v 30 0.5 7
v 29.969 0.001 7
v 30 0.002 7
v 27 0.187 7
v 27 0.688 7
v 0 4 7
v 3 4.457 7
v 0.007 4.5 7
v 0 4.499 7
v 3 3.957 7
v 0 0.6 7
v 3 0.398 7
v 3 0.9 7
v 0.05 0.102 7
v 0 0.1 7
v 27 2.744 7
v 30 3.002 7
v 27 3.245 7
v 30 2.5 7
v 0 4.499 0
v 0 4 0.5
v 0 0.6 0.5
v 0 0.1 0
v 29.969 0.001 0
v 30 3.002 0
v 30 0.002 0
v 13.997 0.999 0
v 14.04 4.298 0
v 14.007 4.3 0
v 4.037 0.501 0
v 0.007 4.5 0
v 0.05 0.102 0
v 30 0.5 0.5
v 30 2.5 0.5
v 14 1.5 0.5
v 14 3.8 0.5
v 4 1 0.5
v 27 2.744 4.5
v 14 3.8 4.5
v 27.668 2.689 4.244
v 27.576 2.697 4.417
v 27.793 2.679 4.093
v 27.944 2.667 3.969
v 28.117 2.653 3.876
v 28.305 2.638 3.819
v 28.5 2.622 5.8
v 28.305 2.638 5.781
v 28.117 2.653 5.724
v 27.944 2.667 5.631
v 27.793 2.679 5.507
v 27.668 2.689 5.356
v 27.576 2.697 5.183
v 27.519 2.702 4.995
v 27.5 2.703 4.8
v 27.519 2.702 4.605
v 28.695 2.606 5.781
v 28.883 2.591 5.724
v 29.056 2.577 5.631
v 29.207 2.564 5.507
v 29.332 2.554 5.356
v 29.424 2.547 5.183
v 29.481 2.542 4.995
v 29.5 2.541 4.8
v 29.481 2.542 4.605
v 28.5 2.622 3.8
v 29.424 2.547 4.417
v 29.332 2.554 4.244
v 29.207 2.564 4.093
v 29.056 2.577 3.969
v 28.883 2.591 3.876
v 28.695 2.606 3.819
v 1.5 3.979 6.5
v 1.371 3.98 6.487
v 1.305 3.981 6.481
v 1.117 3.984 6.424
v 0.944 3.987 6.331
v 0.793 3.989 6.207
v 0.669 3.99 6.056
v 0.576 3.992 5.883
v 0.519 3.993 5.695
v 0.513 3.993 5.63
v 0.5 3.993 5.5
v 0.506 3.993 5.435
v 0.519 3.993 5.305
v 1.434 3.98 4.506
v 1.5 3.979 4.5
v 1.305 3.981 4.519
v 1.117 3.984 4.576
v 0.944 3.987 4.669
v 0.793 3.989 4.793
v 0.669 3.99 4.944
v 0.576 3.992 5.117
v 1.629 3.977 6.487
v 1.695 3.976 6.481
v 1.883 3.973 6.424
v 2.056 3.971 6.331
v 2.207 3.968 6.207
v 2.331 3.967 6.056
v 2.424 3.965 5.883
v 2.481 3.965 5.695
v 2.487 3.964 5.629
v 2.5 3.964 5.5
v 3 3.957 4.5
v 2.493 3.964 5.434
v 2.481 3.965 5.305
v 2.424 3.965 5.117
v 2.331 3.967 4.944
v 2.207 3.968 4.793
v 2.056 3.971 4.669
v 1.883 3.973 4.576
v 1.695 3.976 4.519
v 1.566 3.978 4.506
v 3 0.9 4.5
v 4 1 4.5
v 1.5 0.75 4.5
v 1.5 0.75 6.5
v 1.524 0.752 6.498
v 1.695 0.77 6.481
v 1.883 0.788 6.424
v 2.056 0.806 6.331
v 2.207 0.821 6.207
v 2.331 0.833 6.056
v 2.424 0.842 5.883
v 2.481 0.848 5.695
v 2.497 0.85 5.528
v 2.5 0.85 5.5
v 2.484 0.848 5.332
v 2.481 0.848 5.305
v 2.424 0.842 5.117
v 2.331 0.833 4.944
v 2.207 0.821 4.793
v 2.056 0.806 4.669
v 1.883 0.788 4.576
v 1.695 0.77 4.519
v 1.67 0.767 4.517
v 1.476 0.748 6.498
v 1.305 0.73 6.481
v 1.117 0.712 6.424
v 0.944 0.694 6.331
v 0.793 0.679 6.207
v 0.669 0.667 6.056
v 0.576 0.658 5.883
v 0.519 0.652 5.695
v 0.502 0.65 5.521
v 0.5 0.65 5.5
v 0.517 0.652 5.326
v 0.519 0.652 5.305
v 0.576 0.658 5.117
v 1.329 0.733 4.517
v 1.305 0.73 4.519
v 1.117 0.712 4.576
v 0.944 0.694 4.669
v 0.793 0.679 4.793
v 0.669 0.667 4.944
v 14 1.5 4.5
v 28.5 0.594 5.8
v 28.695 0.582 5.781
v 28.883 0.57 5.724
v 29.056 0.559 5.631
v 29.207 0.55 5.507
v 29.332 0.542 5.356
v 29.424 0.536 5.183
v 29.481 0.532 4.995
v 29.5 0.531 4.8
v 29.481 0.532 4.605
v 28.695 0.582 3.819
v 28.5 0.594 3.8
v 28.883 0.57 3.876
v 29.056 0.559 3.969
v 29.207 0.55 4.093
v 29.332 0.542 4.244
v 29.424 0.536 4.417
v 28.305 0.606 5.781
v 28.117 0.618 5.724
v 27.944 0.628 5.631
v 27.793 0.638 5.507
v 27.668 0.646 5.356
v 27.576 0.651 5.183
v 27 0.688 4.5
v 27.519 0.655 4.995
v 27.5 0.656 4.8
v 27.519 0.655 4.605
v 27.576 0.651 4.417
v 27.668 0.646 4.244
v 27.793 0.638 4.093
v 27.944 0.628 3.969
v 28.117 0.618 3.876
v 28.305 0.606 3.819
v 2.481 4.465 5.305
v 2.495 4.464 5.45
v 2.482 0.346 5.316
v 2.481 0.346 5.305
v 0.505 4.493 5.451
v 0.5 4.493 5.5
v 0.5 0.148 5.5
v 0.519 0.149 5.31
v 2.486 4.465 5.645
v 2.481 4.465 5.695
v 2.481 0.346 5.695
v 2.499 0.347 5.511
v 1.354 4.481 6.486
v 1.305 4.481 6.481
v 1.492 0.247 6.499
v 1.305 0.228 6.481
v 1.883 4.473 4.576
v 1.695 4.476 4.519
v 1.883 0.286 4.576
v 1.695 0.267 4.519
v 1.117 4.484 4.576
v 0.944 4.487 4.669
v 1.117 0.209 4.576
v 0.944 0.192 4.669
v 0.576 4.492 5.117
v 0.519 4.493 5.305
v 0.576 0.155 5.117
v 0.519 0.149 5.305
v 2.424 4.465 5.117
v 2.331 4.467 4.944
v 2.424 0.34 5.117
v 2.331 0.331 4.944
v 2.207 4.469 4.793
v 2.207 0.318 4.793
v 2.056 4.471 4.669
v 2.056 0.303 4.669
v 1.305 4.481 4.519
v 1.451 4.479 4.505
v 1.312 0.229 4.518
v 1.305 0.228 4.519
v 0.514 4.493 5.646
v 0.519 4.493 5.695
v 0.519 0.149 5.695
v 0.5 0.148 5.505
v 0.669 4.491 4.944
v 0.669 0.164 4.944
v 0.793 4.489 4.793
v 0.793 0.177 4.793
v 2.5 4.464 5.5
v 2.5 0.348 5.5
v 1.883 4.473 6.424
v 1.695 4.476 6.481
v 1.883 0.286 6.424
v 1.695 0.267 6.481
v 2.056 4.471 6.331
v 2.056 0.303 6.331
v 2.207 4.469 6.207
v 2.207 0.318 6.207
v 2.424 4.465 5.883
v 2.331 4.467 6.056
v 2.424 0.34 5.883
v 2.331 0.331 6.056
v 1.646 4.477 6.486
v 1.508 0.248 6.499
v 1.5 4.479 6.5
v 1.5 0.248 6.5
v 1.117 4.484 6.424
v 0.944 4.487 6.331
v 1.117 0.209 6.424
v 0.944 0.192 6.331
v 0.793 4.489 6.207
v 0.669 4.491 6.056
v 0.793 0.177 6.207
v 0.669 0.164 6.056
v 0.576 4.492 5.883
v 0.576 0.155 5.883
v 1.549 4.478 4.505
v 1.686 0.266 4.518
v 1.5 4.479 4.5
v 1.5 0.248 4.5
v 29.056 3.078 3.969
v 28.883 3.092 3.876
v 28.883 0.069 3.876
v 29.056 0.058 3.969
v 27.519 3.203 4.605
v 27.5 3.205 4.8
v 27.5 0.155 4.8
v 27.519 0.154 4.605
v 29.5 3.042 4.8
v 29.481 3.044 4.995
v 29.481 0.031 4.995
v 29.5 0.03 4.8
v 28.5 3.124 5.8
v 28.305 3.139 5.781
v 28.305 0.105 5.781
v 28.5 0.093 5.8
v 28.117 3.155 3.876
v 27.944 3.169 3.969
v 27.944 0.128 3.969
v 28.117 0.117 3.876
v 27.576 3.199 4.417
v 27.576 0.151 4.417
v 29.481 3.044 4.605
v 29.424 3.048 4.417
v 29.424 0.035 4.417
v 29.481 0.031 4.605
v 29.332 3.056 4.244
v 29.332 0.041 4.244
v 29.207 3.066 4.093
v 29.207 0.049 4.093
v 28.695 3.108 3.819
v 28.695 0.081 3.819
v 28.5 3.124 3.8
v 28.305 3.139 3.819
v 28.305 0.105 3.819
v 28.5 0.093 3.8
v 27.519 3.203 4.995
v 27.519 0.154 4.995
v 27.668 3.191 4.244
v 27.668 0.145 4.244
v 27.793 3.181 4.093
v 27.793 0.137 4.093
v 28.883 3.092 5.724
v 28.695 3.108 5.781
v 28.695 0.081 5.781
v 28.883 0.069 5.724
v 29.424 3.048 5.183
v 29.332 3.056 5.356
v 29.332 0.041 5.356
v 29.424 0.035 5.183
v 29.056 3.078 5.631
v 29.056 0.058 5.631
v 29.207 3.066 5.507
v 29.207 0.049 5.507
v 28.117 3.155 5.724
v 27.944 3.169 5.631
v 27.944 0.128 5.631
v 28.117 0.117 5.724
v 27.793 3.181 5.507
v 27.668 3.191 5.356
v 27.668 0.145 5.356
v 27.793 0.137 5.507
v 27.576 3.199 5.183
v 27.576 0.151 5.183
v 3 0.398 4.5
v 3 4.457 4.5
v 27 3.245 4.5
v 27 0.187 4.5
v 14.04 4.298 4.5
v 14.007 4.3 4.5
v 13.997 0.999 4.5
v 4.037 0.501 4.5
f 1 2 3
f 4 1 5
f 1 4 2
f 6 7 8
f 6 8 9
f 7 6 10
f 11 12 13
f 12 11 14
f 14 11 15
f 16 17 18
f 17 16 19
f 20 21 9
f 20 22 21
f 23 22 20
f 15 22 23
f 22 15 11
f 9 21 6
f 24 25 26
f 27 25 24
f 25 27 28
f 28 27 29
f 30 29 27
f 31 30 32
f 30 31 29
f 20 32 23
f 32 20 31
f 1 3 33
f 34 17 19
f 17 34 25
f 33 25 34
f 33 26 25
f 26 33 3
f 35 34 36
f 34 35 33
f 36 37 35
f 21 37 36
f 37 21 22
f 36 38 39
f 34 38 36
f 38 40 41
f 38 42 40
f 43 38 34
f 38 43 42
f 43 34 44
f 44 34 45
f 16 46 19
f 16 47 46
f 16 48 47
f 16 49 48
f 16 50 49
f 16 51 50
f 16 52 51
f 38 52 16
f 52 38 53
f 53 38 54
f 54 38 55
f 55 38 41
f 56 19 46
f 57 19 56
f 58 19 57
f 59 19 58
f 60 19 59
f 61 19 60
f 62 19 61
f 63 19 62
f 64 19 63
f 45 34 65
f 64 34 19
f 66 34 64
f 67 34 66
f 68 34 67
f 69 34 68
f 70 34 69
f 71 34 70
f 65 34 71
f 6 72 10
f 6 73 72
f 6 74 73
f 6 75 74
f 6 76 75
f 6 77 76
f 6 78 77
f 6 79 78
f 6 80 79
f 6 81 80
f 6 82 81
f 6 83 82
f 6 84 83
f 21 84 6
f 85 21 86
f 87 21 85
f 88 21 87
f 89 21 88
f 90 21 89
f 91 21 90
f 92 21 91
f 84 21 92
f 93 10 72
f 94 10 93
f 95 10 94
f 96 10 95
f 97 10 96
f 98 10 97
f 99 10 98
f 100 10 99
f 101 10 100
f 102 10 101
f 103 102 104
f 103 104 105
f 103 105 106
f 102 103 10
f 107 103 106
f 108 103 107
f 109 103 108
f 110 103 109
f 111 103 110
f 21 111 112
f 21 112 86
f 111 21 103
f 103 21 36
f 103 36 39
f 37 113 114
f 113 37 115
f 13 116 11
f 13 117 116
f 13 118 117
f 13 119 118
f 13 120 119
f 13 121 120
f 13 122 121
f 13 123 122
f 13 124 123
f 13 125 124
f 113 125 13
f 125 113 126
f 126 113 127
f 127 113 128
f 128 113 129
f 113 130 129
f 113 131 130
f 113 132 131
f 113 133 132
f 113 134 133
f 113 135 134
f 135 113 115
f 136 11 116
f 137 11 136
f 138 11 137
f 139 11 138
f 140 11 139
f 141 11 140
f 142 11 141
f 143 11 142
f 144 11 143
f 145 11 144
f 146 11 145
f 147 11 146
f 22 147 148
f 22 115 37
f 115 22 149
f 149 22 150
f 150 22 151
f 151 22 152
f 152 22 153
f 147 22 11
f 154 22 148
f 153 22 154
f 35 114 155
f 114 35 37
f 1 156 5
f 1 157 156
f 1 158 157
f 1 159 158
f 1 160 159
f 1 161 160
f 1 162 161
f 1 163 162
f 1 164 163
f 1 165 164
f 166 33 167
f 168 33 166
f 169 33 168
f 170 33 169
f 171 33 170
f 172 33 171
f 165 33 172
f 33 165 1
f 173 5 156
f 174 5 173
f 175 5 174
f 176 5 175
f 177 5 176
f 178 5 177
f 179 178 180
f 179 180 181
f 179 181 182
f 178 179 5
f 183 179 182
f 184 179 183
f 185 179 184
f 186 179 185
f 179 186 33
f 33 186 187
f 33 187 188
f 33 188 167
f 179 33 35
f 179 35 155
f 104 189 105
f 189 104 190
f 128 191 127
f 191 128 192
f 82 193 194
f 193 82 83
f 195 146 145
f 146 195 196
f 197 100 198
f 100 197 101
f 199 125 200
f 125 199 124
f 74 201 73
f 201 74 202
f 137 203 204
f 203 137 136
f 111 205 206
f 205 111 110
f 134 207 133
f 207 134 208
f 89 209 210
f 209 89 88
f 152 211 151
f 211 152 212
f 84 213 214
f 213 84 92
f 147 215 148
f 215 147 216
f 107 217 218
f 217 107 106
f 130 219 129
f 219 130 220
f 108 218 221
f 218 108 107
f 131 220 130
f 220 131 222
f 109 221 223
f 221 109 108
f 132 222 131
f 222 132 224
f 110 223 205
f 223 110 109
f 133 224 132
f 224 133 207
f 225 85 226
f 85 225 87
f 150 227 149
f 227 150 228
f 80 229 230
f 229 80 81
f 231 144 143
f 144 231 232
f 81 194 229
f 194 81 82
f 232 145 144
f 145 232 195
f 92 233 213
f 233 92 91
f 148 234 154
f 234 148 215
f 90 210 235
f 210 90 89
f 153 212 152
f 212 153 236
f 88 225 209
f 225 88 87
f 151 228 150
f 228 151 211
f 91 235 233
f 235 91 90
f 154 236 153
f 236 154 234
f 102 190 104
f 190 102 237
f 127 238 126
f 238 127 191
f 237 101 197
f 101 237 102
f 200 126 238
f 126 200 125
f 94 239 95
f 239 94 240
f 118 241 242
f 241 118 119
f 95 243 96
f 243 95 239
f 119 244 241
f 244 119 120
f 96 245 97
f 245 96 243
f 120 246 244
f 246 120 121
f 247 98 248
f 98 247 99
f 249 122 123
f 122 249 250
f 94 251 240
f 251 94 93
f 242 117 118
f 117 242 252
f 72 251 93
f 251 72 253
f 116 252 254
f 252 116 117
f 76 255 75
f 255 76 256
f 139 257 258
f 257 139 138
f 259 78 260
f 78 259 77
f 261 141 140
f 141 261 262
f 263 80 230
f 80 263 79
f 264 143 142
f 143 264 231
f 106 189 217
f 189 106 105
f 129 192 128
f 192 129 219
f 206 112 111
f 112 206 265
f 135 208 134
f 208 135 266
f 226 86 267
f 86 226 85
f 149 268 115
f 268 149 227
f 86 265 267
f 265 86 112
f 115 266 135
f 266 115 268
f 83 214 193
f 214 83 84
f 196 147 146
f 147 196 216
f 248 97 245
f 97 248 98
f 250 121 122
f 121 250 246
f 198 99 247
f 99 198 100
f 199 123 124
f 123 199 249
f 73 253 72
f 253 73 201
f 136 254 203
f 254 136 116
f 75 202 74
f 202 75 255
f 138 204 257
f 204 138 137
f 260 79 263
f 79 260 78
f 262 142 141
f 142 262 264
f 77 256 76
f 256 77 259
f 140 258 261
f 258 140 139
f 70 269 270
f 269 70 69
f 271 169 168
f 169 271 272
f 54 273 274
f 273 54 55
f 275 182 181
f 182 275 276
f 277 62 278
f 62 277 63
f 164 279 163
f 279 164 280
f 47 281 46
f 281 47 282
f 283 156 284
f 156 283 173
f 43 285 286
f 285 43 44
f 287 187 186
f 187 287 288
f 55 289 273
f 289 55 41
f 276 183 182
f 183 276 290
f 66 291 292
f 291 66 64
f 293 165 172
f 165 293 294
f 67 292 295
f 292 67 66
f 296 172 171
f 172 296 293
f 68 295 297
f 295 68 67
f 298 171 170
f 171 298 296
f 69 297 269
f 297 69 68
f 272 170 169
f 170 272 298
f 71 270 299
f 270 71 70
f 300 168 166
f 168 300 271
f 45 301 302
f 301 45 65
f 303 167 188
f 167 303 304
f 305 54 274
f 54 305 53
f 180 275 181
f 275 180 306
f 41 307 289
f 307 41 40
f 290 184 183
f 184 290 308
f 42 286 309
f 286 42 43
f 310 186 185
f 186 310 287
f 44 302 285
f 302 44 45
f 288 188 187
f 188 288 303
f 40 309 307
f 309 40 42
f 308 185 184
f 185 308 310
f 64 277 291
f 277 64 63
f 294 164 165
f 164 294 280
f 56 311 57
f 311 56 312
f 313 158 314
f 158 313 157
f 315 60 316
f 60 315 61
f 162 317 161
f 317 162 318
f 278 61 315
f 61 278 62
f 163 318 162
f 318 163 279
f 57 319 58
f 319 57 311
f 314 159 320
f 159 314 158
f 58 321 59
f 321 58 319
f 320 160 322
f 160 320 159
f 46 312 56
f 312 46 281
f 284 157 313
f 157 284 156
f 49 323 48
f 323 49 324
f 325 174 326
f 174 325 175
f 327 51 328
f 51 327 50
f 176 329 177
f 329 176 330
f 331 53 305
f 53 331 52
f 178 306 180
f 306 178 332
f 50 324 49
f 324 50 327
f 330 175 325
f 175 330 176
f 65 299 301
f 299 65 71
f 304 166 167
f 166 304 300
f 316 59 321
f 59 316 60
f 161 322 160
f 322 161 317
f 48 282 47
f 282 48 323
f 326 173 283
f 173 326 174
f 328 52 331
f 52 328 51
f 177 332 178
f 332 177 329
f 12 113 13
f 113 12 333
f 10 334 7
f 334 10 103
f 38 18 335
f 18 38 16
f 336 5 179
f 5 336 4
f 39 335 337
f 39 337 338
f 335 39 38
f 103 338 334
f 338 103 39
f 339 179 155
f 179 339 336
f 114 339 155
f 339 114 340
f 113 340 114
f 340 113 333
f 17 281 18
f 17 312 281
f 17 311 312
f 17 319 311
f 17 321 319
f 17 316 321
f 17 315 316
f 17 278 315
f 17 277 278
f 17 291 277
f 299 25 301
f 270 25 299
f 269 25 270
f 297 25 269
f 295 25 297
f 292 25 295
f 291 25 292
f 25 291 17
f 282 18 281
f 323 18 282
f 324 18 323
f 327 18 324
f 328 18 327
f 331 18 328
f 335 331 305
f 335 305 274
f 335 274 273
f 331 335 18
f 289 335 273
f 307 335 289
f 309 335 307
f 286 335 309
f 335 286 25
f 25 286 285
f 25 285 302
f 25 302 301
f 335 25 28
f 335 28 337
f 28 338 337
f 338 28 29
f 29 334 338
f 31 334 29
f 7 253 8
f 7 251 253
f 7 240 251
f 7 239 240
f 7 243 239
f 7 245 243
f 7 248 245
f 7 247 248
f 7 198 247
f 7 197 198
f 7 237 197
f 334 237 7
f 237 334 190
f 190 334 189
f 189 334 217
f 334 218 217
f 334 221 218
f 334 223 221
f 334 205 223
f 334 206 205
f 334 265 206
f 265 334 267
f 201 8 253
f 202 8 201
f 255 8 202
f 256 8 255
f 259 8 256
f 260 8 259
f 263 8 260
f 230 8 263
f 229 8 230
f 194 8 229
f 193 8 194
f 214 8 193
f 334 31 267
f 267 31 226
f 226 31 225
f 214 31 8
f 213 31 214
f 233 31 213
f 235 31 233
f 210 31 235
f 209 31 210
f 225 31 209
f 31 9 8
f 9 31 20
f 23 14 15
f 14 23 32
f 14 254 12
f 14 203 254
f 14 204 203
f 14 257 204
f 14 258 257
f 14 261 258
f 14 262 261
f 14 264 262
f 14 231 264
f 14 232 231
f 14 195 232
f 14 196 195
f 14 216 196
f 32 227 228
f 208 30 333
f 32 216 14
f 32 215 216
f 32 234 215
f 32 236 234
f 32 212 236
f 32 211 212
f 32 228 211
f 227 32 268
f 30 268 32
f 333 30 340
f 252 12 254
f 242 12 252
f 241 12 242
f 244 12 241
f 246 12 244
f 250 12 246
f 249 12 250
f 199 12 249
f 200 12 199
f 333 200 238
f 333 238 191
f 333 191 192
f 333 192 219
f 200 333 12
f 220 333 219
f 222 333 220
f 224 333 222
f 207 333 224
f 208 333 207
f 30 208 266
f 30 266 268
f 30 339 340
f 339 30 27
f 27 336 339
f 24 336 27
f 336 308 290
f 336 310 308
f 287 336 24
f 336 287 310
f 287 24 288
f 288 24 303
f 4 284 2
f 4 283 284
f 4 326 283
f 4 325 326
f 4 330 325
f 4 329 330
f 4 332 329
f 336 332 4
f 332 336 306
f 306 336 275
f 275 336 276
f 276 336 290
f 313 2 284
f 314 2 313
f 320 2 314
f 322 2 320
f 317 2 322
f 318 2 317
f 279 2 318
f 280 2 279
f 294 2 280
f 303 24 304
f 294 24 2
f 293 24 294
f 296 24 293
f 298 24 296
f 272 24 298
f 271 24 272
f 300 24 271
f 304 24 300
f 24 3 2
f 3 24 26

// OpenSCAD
// file: Helper.scad
// collection of helper functions and modules

$fn=32;


/////////////////////// Functions ///////////////////////////
function defined(variable) = str(variable) != "undef"; 



/////////////////////// Objects /////////////////////////////

// creates a hole on with given depth and diameter 
// with its center at x,y,z 
// of the given plane
module mkhole(diameter,depth,plane="xy",x=0,y=0,z=0)
{
        if(plane=="xy")
            translate([x,y,z])
                translate([0,0,depth/2])
                    cylinder(d=diameter,h=depth, center=true);
      
        if(plane=="xz")
            translate([x,y,z])
                translate([0,depth/2,0])
                    rotate([90,0,0])
                        cylinder(d=diameter,h=depth, center=true);
        
        if(plane=="yz")
            translate([x,y,z])
                translate([depth/2,0,0])
                    rotate([0,90,0])
                        cylinder(d=diameter,h=depth, center=true);
}


// create a foot for objects starting at z with given height
module mkfoot(height,z){
    translate([0,0,z])
        linear_extrude(height=height)
            projection() children();
}


// create a length indicator with text - l=length, t=text
module Spacer(l,t){
    // move with beginning to zero on x axis
    translate([l/2,0,0]){
        linear_extrude(height=0.1){
            // create spacer line
            square([l,0.1],center=true);

            // create end caps
            translate([-l/2,0,0])
                square([0.1,1],center=true);
            translate([l/2,0,0])
                square([0.1,1],center=true);

            // add text
            text(text = str(t,": ",l),
                 size=1,
                 halign="center",
                 valign="bottom");
        }
    }
}
// main file
// Glasses connector
//
// Object is modelled for specific glasses.
// Adjust connector_shape for other shapes.
//

use <Helper.scad>;

$fn=32;


// Render object with example values when run standalone
Glasses_Connector(connector_shape=[[0,0.6],
                                           [4,1],
                                           [14,1.5],
                                           [30,0.5],
                                           [30,2.5],
                                           [14,3.8],
                                           [0,4]],
                  connector_height1=4,
                  connector_height2=3.3,
                  connector_length=30,
                  connector_screw_diameter=2,
                  connector_slider_height=2,
                  connector_slider_width=4,
                  wall=0.5,
                  output=true
                  );


module Glasses_Connector(connector_shape,
                         connector_height1,
                         connector_height2,
                         connector_length,
                         connector_screw_diameter,
                         connector_slider_height,
                         connector_slider_width,
                         wall,
                         output=true)
{

    ///////////////////// internal variables ///////////////////////


    ///////////////////// calculated variables //////////////////////
    connector_height        = max(connector_height1,
                                          connector_height2);
    connector_case_height   = connector_height
                                      + connector_screw_diameter
                                      + 2 * wall;
    connector_case_width    = max(connector_shape[1])+2*wall;
    screw_distance                  = connector_length
                                      - connector_screw_diameter
                                      - 2 * wall;
    cutout_length                   = screw_distance
                                      - connector_screw_diameter
                                      - 2 * wall;
    cutout_height                   = connector_case_height
                                      - connector_height
                                      - wall;

    //////////////////// parts to be rendered //////////////////////

    if(output) output();

    object();
    

    //////////////////////////// modules ///////////////////////////
    
    // main object
    module object(){
        difference()
        {
            // main connector shape
            linear_extrude(height=connector_case_height)
                offset(r=wall)
                    polygon(connector_shape);

            union()
            {
                // main connector cutout
                translate([0,0,wall])
                    linear_extrude(height=connector_case_height-wall)
                        polygon(connector_shape);
                
                // front/back connector cutoff
                for(offset_x=[-wall,connector_length])
                {
                    translate([offset_x,0,0])
                        cube([wall,
                              connector_case_width,
                              connector_case_height]);
                }    
                
                // front screw holes
                    translate([connector_screw_diameter/2+wall,
                               0,
                               connector_screw_diameter/2
                              +connector_height1 + wall])
                        rotate([270,0,0])
                            cylinder(d=connector_screw_diameter,
                                     h=connector_case_width+2*wall);
                // back screw holes
                    translate([connector_length
                              -connector_screw_diameter/2-wall,
                               0,
                               connector_screw_diameter/2
                              +connector_height2 + wall])
                        rotate([270,0,0])
                            cylinder(d=connector_screw_diameter,
                                     h=connector_case_width+2*wall);
                
                
                // middle cutout
                translate([connector_screw_diameter+2*wall,
                            0,
                            connector_height+wall])
                    cube([cutout_length,
                          connector_case_width,
                          cutout_height]);
            }
        }
    }
    
    module slider_case()
    {
        //cube([connector_case_width, glasses_connector_])
    }
    
    module output()
    {
        echo("Glasses connector height",connector_height);
        echo("Glasses connector case height",connector_case_height);
        echo("Glasses connector case width",connector_case_width);
        echo("Screw distance", screw_distance);
        echo("Cutout height", cutout_height);
    }
}
